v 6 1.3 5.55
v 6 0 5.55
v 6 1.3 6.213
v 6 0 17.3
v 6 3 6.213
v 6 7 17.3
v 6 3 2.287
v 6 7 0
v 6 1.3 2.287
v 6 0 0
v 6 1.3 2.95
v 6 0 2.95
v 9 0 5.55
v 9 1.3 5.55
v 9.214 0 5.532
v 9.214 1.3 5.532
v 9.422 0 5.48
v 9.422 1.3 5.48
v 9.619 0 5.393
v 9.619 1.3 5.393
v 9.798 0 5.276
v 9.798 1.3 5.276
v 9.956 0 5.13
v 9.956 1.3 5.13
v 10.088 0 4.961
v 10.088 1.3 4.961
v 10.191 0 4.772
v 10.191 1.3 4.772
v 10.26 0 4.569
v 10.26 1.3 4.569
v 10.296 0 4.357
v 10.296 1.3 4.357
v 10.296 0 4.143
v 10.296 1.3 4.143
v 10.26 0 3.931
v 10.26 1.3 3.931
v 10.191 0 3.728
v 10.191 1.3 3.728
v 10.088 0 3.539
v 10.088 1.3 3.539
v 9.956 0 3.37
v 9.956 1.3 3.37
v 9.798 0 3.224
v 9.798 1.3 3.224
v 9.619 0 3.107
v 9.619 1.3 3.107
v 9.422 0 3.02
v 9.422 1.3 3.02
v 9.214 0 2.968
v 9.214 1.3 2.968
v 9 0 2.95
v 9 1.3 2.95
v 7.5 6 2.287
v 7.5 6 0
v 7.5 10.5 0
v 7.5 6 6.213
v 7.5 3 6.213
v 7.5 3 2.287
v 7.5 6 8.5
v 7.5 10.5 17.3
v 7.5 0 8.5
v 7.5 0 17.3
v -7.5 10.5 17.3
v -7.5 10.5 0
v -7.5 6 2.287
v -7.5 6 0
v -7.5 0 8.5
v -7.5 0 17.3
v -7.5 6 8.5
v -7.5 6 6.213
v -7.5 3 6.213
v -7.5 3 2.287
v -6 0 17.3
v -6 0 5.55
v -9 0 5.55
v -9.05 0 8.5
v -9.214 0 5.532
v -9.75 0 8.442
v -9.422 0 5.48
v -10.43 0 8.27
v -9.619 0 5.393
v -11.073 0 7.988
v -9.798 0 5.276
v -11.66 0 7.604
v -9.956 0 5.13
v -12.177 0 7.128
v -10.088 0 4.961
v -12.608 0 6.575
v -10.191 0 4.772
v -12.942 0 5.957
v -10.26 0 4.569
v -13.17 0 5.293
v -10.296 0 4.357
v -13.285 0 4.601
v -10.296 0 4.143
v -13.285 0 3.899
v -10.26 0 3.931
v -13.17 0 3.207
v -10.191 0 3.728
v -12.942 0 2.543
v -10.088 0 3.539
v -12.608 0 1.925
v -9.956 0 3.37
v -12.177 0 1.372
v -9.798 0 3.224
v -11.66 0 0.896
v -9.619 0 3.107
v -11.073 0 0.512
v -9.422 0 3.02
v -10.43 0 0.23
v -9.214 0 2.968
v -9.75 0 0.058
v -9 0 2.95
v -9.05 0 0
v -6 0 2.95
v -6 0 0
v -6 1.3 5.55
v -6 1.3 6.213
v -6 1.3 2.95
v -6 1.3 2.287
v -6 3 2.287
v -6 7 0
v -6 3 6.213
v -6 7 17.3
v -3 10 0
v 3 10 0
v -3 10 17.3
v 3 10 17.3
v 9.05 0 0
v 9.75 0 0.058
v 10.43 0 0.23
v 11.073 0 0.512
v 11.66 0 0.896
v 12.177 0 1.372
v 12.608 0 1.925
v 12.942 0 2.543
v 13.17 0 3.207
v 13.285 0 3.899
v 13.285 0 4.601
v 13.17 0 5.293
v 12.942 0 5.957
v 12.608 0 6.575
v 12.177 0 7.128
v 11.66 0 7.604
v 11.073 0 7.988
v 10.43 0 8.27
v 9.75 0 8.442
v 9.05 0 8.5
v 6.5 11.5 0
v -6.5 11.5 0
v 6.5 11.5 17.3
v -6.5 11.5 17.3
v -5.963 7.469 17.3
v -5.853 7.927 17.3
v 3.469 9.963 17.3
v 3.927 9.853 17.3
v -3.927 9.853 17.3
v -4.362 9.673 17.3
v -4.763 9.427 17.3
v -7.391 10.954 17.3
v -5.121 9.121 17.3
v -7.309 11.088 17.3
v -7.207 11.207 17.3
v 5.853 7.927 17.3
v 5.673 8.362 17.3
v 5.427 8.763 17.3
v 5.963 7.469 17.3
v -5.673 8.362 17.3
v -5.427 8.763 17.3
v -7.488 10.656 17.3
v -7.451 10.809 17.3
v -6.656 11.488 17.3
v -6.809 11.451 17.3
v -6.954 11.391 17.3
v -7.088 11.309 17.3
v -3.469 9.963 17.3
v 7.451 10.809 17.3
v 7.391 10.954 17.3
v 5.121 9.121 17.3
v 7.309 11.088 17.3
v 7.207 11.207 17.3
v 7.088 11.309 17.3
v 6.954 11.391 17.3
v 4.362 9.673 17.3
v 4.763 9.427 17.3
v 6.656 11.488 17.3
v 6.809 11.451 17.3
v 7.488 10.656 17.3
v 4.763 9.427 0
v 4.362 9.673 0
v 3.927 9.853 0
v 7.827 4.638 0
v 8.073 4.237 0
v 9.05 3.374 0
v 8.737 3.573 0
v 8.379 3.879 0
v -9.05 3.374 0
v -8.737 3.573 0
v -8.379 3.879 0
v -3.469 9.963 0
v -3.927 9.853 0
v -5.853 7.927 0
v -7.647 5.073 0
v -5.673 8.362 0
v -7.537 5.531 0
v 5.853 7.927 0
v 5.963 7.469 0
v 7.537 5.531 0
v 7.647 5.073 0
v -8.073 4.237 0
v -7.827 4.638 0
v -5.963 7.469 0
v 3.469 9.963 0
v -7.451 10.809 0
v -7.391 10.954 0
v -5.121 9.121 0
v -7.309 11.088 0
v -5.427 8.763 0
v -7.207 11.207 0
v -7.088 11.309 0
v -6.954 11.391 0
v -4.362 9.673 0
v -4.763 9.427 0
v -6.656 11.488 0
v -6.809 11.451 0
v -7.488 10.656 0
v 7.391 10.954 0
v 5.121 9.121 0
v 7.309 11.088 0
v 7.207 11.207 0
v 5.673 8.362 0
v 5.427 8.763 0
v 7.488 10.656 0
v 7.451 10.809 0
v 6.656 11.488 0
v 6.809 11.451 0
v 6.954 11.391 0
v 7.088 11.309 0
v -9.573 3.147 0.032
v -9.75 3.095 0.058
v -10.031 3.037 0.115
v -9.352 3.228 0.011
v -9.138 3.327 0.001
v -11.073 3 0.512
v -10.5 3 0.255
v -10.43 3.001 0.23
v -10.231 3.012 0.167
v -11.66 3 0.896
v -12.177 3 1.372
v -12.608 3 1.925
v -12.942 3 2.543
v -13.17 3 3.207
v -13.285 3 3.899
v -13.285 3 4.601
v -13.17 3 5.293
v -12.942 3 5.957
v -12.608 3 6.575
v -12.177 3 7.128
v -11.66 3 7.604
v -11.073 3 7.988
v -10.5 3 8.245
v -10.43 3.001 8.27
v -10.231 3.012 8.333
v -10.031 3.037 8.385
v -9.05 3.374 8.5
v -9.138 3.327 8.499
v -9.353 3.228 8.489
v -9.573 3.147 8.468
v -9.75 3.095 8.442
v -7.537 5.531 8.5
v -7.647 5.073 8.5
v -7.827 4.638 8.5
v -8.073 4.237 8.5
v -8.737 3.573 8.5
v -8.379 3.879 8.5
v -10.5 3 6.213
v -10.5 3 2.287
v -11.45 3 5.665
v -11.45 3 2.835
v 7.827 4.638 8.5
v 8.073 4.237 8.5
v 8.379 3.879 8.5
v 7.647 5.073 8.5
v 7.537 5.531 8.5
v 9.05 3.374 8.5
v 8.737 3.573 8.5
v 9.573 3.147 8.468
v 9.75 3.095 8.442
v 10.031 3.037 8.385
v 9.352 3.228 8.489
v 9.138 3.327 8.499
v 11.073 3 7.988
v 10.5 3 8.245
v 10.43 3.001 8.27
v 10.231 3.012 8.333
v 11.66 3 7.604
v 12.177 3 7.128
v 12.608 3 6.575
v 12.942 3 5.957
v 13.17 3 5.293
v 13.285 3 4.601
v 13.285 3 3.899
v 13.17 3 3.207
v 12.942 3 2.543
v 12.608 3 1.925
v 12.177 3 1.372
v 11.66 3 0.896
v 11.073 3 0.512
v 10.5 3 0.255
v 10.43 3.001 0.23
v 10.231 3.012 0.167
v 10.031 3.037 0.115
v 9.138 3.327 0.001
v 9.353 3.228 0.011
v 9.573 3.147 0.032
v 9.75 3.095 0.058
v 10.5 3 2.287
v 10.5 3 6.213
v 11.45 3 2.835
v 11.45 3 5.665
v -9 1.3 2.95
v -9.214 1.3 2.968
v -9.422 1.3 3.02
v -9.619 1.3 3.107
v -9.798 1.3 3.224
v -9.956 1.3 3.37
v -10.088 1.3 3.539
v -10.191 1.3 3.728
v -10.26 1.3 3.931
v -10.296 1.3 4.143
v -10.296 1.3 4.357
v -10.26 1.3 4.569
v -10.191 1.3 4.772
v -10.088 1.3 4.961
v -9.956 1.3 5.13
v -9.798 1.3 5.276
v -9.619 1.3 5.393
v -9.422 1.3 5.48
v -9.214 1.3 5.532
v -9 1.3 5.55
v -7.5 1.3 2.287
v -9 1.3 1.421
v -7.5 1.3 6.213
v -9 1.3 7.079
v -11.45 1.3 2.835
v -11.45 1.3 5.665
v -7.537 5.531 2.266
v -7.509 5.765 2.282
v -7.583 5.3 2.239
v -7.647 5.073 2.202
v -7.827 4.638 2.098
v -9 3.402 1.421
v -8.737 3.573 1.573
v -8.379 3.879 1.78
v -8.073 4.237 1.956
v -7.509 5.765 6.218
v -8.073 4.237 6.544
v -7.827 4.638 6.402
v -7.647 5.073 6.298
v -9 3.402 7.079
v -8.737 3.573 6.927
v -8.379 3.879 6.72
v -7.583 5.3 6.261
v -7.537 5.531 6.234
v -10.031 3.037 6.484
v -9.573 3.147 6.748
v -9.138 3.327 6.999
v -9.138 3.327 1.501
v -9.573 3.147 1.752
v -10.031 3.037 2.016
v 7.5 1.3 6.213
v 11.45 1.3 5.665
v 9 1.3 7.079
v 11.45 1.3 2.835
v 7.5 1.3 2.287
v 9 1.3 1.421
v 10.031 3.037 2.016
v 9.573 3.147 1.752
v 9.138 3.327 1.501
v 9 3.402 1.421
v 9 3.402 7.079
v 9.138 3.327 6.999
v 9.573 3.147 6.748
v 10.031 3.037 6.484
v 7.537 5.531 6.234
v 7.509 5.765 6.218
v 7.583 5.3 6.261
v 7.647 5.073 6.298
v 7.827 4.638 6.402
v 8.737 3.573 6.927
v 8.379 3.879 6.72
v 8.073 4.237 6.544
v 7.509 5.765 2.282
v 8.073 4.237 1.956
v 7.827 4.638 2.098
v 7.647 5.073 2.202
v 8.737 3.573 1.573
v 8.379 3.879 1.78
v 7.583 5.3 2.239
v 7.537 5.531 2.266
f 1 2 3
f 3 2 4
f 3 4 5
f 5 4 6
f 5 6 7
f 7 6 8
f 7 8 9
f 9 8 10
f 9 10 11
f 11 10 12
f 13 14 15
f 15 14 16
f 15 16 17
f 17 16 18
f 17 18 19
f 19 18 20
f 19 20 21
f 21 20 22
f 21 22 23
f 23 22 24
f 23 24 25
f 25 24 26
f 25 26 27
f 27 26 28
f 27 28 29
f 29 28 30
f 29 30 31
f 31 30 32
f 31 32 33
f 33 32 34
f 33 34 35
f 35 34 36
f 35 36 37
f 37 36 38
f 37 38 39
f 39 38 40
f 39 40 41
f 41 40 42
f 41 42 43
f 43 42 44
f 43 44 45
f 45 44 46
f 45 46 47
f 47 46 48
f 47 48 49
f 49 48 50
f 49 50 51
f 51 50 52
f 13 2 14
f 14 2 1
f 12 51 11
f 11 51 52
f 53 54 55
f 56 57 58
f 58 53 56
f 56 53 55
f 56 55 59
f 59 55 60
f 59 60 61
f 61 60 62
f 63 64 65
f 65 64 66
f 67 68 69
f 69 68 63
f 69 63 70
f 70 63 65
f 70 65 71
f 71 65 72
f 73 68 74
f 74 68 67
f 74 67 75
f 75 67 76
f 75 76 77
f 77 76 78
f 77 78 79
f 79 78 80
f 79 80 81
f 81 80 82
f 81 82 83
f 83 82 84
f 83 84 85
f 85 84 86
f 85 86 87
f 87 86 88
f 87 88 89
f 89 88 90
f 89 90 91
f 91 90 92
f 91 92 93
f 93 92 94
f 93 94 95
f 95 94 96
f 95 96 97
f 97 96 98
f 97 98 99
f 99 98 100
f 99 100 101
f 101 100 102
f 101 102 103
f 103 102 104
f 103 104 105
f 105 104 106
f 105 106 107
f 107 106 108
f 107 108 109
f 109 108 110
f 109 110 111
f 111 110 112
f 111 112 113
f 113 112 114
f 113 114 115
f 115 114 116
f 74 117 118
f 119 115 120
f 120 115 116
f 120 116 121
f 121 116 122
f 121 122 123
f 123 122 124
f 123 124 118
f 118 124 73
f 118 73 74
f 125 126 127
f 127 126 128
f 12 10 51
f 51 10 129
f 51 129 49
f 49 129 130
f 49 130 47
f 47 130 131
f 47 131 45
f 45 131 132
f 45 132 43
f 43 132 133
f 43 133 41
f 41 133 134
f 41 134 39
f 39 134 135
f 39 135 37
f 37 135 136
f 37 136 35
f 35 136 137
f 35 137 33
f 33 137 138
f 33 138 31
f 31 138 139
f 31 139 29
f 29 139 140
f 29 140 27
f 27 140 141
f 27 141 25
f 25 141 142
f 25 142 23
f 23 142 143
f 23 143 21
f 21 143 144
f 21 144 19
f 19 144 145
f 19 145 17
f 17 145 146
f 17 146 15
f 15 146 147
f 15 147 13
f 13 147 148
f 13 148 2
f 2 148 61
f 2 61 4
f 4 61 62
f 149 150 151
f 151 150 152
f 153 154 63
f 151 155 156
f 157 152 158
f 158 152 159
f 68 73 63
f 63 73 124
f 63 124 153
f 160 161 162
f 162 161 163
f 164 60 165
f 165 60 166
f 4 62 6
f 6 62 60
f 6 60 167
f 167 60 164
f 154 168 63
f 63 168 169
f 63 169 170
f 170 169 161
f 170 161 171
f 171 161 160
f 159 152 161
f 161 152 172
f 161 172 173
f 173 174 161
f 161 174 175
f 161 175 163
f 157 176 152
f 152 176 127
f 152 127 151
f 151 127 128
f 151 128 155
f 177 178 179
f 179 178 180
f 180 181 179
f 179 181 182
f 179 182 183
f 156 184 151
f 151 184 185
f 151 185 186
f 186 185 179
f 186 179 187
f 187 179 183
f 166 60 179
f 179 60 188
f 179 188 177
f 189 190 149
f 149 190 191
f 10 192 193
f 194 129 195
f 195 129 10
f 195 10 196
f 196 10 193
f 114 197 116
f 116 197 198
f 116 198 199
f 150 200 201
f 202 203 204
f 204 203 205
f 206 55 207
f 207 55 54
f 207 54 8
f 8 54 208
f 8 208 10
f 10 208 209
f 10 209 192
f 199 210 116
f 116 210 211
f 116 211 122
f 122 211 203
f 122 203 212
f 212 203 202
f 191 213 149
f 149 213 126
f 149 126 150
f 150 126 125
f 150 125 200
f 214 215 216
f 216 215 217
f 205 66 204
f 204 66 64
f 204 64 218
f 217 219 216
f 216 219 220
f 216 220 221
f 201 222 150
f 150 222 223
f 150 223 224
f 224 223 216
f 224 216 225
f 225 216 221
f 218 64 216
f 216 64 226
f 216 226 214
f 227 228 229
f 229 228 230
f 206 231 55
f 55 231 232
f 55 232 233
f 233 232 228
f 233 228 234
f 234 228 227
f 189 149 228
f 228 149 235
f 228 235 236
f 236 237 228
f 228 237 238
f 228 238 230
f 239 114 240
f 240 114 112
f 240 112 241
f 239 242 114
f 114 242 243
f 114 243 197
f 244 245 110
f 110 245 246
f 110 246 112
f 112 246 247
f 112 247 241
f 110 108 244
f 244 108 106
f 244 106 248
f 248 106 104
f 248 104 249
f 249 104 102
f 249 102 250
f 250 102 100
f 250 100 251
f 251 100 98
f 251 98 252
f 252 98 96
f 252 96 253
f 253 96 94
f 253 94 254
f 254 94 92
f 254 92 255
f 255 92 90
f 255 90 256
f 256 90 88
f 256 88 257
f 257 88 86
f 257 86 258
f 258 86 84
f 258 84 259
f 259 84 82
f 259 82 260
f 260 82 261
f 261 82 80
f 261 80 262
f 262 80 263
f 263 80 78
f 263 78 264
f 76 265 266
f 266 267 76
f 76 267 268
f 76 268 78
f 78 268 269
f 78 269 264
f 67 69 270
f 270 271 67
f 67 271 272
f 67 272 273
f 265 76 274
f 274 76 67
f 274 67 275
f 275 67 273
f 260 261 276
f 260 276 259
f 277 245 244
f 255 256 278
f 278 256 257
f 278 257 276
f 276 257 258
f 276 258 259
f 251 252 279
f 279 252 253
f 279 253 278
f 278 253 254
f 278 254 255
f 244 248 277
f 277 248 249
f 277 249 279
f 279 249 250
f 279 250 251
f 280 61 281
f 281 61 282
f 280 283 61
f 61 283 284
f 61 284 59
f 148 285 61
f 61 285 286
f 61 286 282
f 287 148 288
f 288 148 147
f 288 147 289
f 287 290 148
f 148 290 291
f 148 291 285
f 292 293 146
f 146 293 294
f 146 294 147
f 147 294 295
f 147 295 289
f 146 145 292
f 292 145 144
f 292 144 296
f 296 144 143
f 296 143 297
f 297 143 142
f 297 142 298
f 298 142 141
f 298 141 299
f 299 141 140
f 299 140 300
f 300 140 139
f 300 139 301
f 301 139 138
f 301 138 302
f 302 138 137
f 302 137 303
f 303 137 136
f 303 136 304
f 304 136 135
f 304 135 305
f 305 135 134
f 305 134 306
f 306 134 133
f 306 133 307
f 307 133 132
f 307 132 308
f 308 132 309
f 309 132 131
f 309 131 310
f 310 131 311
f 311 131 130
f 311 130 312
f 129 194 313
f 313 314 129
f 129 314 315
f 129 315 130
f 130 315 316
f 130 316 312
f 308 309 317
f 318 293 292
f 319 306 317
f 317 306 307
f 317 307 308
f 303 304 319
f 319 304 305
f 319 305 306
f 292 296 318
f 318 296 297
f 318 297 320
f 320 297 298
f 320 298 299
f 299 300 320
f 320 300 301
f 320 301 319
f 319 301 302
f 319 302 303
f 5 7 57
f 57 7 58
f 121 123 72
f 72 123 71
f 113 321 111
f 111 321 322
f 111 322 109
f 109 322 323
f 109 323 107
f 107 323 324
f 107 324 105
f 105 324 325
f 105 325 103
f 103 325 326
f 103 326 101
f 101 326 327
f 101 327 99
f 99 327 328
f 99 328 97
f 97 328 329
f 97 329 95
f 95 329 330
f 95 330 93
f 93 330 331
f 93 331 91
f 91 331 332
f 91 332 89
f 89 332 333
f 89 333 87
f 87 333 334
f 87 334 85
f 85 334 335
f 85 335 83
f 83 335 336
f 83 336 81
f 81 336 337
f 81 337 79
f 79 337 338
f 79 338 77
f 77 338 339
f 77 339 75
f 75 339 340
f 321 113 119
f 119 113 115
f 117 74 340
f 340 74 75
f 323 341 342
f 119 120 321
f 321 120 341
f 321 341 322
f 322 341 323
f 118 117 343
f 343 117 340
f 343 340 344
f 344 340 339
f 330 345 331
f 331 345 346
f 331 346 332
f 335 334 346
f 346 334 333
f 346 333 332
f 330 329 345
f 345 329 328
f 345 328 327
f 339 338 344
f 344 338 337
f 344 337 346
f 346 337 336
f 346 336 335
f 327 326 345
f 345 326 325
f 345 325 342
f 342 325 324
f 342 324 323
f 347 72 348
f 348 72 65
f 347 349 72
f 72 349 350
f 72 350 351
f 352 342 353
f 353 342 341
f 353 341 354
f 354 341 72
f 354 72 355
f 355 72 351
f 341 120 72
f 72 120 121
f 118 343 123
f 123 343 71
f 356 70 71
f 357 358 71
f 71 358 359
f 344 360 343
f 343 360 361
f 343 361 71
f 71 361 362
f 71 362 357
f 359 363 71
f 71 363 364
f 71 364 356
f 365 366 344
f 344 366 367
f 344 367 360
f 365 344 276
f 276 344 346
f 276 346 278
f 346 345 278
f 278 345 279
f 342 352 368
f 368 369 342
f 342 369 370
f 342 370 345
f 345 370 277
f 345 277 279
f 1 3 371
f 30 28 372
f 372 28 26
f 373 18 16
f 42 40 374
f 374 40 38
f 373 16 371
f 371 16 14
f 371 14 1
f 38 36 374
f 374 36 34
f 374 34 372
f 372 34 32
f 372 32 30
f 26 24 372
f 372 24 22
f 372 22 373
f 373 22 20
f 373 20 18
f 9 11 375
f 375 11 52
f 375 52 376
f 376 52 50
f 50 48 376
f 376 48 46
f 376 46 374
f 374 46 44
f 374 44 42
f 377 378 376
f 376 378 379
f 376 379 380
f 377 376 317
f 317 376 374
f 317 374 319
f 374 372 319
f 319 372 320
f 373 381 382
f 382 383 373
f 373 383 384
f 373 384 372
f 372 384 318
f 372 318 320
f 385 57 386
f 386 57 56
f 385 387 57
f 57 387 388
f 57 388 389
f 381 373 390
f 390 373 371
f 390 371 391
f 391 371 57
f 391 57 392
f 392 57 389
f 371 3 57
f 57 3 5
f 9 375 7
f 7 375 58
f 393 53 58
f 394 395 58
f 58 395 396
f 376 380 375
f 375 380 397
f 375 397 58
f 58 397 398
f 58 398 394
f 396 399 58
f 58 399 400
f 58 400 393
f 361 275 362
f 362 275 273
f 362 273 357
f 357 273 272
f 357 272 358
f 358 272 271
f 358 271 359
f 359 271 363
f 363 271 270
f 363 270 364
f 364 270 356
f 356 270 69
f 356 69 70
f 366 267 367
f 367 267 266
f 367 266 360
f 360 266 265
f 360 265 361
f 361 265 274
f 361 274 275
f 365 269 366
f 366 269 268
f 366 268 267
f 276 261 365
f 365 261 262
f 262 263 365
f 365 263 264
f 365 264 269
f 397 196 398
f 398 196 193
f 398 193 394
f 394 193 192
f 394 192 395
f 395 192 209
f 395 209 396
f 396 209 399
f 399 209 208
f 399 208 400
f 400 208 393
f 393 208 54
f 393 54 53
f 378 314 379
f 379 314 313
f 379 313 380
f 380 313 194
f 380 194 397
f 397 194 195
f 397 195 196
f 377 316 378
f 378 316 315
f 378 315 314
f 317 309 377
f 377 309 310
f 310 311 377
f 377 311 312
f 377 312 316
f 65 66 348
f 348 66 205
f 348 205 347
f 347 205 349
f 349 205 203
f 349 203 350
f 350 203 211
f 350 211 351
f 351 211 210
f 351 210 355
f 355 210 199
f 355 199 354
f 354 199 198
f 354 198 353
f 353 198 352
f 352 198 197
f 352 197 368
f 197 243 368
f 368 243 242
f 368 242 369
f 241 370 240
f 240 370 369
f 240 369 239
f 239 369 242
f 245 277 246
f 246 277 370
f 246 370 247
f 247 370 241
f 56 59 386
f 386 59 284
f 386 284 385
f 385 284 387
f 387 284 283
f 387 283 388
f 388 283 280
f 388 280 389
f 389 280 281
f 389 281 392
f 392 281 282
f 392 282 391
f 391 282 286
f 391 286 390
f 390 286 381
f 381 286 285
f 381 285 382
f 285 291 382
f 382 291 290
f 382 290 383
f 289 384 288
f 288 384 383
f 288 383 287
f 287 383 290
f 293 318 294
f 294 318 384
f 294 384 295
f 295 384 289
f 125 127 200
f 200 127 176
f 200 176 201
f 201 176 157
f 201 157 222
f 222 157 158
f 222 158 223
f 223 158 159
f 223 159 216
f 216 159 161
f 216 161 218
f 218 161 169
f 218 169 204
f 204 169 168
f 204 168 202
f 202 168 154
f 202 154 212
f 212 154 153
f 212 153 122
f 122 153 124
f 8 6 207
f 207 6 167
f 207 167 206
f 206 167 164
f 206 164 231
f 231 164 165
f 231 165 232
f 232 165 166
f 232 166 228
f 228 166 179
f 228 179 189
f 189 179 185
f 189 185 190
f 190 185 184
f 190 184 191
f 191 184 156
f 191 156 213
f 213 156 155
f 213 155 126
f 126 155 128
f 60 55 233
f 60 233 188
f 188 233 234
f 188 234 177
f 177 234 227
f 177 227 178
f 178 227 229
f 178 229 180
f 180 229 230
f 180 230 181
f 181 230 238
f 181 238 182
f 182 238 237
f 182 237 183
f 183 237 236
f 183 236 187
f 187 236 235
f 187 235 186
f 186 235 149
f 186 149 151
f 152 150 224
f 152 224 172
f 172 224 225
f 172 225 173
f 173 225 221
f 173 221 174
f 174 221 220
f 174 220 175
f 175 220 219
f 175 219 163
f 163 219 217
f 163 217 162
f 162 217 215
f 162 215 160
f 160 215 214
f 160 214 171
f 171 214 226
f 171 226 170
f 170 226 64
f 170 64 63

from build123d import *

# Parameters (mm, degrees)
BOSS_EXTRUDE1_DEPTH = 17.3
BOSS_EXTRUDE2_DEPTH = 3
CUT_EXTRUDE1_DEPTH  = 3
CUT_EXTRUDE2_DEPTH  = 1.7
FILLET1_DEPTH       = 17.3
FILLET1_START       = 6.212990815
FILLET1_2_DEPTH     = 2.287009185
FILLET1_3_DEPTH     = 2.287009085
FILLET1_START_2     = 3
FILLET1_4_DEPTH     = 8.5
FILLET2_R           = 1


with BuildPart() as part:
    # Sketch1 → Boss-Extrude1 (new body)
    with BuildSketch(Plane.XY):
        Polygon((6, 0), (7.5, 0), (7.5, 11.5), (-7.5, 11.5), (-7.5, 0), (-6, 0), (-6, 10), (6, 10), align=None)
    extrude(amount=BOSS_EXTRUDE1_DEPTH)

    # Sketch2 → Boss-Extrude2 (add)
    with BuildSketch(Plane.XZ):
        with BuildLine():
            Line((-7.5, 0), (-9.05, 0))
            ThreePointArc((-9.05, 0), (-13.3, 4.25), (-9.05, 8.5))
            Line((-9.05, 8.5), (-7.5, 8.5))
            Line((-7.5, 8.5), (-7.5, 0))
        make_face()
        with BuildLine():
            Line((7.5, 0), (9.05, 0))
            ThreePointArc((9.05, 0), (13.3, 4.25), (9.05, 8.5))
            Line((9.05, 8.5), (7.5, 8.5))
            Line((7.5, 8.5), (7.5, 0))
        make_face()
    extrude(amount=-BOSS_EXTRUDE2_DEPTH)

    # Sketch3 → Cut-Extrude1 (cut)
    with BuildSketch(Plane(origin=(0, 3, 0), x_dir=(1, 0, 0), z_dir=(0, 1, 0))):
        with BuildLine():
            Line((6, -2.95), (9, -2.95))
            ThreePointArc((9, -2.95), (10.3, -4.25), (9, -5.55))
            Line((9, -5.55), (6, -5.55))
            Line((6, -5.55), (6, -2.95))
        make_face()
        with BuildLine():
            Line((-6, -2.95), (-9, -2.95))
            ThreePointArc((-9, -2.95), (-10.3, -4.25), (-9, -5.55))
            Line((-9, -5.55), (-6, -5.55))
            Line((-6, -5.55), (-6, -2.95))
        make_face()
    extrude(amount=-CUT_EXTRUDE1_DEPTH, mode=Mode.SUBTRACT)

    # Sketch4 → Cut-Extrude2 (cut)
    with BuildSketch(Plane(origin=(0, 3, 0), x_dir=(1, 0, 0), z_dir=(0, 1, 0))):
        Polygon((9, -1.420983681), (7.5, -2.287009085), (6, -2.287009085), (6, -6.212990915), (7.5, -6.212990915), (9, -7.079016319), (11.45, -5.66450816), (11.45, -2.83549184), align=None)
        Polygon((-6, -6.212990915), (-7.5, -6.212990915), (-9, -7.079016319), (-11.45, -5.66450816), (-11.45, -2.83549184), (-9, -1.420983681), (-7.5, -2.287009085), (-6, -2.287009085), align=None)
    extrude(amount=-CUT_EXTRUDE2_DEPTH, mode=Mode.SUBTRACT)

    # Fillet1: read off the stored shape, not the designer's step
    # Fillet1 outline → Fillet1 (add)
    with BuildSketch(Plane.XY):
        with BuildLine():
            Line((6, 10), (3, 10))
            ThreePointArc((3, 10), (5.121320344, 9.121320344), (6, 7))
            Line((6, 7), (6, 10))
        make_face()
        with BuildLine():
            ThreePointArc((-6, 7), (-5.121320344, 9.121320344), (-3, 10))
            Line((-3, 10), (-6, 10))
            Line((-6, 10), (-6, 7))
        make_face()
    extrude(amount=FILLET1_DEPTH)

    # Fillet1 2 outline → Fillet1 2 (add)
    with BuildSketch(Plane.XY.offset(FILLET1_START)):
        with BuildLine():
            ThreePointArc((-7.5, 6), (-8.378679656, 3.878679656), (-10.5, 3))
            Line((-10.5, 3), (-7.5, 3))
            Line((-7.5, 3), (-7.5, 6))
        make_face()
        with BuildLine():
            ThreePointArc((10.5, 3), (8.378679656, 3.878679656), (7.5, 6))
            Line((7.5, 6), (7.5, 3))
            Line((7.5, 3), (10.5, 3))
        make_face()
    extrude(amount=FILLET1_2_DEPTH)

    # Fillet1 3 outline → Fillet1 3 (add)
    with BuildSketch(Plane.XY):
        with BuildLine():
            ThreePointArc((-7.5, 6), (-8.378679656, 3.878679656), (-10.5, 3))
            Line((-10.5, 3), (-7.5, 3))
            Line((-7.5, 3), (-7.5, 6))
        make_face()
        with BuildLine():
            ThreePointArc((10.5, 3), (8.378679656, 3.878679656), (7.5, 6))
            Line((7.5, 6), (7.5, 3))
            Line((7.5, 3), (10.5, 3))
        make_face()
    extrude(amount=FILLET1_3_DEPTH)

    # Fillet1 4 outline → Fillet1 4 (cut)
    with BuildSketch(Plane(origin=(0, 0, 0), x_dir=(1, 0, 0), z_dir=(0, 1, 0)).offset(FILLET1_START_2)):
        Polygon((9, -1.420983681), (7.5, -2.287009085), (10.5, -2.287009085), align=None)
        Polygon((10.5, -6.212990815), (7.5, -6.212990815), (9, -7.079016319), align=None)
        with BuildLine():
            Line((10.5, 0), (9.05, 0))
            ThreePointArc((9.05, 0), (9.786126109, -0.064236228), (10.5, -0.255003129))
            Line((10.5, -0.255003129), (10.5, 0))
        make_face()
        with BuildLine():
            ThreePointArc((10.5, -8.244996871), (9.786126109, -8.435763772), (9.05, -8.5))
            Line((9.05, -8.5), (10.5, -8.5))
            Line((10.5, -8.5), (10.5, -8.244996871))
        make_face()
        with BuildLine():
            Line((-9.05, 0), (-10.5, 0))
            Line((-10.5, 0), (-10.5, -0.255003129))
            ThreePointArc((-10.5, -0.255003129), (-9.786126109, -0.064236228), (-9.05, 0))
        make_face()
        with BuildLine():
            ThreePointArc((-9.05, -8.5), (-9.786126109, -8.435763772), (-10.5, -8.244996871))
            Line((-10.5, -8.244996871), (-10.5, -8.5))
            Line((-10.5, -8.5), (-9.05, -8.5))
        make_face()
        Polygon((-9, -1.420983681), (-10.5, -2.287009085), (-7.5, -2.287009085), align=None)
        Polygon((-7.5, -6.212990815), (-10.5, -6.212990815), (-9, -7.079016319), align=None)
    extrude(amount=FILLET1_4_DEPTH, mode=Mode.SUBTRACT)

    # Fillet2
    fillet2_edges = [part.edges().sort_by_distance(p)[0] for p in [
        (-7.5, 11.5, 8.65),
        (7.5, 11.5, 8.65),
    ]]
    fillet(fillet2_edges, radius=FILLET2_R)


solid = part.part
